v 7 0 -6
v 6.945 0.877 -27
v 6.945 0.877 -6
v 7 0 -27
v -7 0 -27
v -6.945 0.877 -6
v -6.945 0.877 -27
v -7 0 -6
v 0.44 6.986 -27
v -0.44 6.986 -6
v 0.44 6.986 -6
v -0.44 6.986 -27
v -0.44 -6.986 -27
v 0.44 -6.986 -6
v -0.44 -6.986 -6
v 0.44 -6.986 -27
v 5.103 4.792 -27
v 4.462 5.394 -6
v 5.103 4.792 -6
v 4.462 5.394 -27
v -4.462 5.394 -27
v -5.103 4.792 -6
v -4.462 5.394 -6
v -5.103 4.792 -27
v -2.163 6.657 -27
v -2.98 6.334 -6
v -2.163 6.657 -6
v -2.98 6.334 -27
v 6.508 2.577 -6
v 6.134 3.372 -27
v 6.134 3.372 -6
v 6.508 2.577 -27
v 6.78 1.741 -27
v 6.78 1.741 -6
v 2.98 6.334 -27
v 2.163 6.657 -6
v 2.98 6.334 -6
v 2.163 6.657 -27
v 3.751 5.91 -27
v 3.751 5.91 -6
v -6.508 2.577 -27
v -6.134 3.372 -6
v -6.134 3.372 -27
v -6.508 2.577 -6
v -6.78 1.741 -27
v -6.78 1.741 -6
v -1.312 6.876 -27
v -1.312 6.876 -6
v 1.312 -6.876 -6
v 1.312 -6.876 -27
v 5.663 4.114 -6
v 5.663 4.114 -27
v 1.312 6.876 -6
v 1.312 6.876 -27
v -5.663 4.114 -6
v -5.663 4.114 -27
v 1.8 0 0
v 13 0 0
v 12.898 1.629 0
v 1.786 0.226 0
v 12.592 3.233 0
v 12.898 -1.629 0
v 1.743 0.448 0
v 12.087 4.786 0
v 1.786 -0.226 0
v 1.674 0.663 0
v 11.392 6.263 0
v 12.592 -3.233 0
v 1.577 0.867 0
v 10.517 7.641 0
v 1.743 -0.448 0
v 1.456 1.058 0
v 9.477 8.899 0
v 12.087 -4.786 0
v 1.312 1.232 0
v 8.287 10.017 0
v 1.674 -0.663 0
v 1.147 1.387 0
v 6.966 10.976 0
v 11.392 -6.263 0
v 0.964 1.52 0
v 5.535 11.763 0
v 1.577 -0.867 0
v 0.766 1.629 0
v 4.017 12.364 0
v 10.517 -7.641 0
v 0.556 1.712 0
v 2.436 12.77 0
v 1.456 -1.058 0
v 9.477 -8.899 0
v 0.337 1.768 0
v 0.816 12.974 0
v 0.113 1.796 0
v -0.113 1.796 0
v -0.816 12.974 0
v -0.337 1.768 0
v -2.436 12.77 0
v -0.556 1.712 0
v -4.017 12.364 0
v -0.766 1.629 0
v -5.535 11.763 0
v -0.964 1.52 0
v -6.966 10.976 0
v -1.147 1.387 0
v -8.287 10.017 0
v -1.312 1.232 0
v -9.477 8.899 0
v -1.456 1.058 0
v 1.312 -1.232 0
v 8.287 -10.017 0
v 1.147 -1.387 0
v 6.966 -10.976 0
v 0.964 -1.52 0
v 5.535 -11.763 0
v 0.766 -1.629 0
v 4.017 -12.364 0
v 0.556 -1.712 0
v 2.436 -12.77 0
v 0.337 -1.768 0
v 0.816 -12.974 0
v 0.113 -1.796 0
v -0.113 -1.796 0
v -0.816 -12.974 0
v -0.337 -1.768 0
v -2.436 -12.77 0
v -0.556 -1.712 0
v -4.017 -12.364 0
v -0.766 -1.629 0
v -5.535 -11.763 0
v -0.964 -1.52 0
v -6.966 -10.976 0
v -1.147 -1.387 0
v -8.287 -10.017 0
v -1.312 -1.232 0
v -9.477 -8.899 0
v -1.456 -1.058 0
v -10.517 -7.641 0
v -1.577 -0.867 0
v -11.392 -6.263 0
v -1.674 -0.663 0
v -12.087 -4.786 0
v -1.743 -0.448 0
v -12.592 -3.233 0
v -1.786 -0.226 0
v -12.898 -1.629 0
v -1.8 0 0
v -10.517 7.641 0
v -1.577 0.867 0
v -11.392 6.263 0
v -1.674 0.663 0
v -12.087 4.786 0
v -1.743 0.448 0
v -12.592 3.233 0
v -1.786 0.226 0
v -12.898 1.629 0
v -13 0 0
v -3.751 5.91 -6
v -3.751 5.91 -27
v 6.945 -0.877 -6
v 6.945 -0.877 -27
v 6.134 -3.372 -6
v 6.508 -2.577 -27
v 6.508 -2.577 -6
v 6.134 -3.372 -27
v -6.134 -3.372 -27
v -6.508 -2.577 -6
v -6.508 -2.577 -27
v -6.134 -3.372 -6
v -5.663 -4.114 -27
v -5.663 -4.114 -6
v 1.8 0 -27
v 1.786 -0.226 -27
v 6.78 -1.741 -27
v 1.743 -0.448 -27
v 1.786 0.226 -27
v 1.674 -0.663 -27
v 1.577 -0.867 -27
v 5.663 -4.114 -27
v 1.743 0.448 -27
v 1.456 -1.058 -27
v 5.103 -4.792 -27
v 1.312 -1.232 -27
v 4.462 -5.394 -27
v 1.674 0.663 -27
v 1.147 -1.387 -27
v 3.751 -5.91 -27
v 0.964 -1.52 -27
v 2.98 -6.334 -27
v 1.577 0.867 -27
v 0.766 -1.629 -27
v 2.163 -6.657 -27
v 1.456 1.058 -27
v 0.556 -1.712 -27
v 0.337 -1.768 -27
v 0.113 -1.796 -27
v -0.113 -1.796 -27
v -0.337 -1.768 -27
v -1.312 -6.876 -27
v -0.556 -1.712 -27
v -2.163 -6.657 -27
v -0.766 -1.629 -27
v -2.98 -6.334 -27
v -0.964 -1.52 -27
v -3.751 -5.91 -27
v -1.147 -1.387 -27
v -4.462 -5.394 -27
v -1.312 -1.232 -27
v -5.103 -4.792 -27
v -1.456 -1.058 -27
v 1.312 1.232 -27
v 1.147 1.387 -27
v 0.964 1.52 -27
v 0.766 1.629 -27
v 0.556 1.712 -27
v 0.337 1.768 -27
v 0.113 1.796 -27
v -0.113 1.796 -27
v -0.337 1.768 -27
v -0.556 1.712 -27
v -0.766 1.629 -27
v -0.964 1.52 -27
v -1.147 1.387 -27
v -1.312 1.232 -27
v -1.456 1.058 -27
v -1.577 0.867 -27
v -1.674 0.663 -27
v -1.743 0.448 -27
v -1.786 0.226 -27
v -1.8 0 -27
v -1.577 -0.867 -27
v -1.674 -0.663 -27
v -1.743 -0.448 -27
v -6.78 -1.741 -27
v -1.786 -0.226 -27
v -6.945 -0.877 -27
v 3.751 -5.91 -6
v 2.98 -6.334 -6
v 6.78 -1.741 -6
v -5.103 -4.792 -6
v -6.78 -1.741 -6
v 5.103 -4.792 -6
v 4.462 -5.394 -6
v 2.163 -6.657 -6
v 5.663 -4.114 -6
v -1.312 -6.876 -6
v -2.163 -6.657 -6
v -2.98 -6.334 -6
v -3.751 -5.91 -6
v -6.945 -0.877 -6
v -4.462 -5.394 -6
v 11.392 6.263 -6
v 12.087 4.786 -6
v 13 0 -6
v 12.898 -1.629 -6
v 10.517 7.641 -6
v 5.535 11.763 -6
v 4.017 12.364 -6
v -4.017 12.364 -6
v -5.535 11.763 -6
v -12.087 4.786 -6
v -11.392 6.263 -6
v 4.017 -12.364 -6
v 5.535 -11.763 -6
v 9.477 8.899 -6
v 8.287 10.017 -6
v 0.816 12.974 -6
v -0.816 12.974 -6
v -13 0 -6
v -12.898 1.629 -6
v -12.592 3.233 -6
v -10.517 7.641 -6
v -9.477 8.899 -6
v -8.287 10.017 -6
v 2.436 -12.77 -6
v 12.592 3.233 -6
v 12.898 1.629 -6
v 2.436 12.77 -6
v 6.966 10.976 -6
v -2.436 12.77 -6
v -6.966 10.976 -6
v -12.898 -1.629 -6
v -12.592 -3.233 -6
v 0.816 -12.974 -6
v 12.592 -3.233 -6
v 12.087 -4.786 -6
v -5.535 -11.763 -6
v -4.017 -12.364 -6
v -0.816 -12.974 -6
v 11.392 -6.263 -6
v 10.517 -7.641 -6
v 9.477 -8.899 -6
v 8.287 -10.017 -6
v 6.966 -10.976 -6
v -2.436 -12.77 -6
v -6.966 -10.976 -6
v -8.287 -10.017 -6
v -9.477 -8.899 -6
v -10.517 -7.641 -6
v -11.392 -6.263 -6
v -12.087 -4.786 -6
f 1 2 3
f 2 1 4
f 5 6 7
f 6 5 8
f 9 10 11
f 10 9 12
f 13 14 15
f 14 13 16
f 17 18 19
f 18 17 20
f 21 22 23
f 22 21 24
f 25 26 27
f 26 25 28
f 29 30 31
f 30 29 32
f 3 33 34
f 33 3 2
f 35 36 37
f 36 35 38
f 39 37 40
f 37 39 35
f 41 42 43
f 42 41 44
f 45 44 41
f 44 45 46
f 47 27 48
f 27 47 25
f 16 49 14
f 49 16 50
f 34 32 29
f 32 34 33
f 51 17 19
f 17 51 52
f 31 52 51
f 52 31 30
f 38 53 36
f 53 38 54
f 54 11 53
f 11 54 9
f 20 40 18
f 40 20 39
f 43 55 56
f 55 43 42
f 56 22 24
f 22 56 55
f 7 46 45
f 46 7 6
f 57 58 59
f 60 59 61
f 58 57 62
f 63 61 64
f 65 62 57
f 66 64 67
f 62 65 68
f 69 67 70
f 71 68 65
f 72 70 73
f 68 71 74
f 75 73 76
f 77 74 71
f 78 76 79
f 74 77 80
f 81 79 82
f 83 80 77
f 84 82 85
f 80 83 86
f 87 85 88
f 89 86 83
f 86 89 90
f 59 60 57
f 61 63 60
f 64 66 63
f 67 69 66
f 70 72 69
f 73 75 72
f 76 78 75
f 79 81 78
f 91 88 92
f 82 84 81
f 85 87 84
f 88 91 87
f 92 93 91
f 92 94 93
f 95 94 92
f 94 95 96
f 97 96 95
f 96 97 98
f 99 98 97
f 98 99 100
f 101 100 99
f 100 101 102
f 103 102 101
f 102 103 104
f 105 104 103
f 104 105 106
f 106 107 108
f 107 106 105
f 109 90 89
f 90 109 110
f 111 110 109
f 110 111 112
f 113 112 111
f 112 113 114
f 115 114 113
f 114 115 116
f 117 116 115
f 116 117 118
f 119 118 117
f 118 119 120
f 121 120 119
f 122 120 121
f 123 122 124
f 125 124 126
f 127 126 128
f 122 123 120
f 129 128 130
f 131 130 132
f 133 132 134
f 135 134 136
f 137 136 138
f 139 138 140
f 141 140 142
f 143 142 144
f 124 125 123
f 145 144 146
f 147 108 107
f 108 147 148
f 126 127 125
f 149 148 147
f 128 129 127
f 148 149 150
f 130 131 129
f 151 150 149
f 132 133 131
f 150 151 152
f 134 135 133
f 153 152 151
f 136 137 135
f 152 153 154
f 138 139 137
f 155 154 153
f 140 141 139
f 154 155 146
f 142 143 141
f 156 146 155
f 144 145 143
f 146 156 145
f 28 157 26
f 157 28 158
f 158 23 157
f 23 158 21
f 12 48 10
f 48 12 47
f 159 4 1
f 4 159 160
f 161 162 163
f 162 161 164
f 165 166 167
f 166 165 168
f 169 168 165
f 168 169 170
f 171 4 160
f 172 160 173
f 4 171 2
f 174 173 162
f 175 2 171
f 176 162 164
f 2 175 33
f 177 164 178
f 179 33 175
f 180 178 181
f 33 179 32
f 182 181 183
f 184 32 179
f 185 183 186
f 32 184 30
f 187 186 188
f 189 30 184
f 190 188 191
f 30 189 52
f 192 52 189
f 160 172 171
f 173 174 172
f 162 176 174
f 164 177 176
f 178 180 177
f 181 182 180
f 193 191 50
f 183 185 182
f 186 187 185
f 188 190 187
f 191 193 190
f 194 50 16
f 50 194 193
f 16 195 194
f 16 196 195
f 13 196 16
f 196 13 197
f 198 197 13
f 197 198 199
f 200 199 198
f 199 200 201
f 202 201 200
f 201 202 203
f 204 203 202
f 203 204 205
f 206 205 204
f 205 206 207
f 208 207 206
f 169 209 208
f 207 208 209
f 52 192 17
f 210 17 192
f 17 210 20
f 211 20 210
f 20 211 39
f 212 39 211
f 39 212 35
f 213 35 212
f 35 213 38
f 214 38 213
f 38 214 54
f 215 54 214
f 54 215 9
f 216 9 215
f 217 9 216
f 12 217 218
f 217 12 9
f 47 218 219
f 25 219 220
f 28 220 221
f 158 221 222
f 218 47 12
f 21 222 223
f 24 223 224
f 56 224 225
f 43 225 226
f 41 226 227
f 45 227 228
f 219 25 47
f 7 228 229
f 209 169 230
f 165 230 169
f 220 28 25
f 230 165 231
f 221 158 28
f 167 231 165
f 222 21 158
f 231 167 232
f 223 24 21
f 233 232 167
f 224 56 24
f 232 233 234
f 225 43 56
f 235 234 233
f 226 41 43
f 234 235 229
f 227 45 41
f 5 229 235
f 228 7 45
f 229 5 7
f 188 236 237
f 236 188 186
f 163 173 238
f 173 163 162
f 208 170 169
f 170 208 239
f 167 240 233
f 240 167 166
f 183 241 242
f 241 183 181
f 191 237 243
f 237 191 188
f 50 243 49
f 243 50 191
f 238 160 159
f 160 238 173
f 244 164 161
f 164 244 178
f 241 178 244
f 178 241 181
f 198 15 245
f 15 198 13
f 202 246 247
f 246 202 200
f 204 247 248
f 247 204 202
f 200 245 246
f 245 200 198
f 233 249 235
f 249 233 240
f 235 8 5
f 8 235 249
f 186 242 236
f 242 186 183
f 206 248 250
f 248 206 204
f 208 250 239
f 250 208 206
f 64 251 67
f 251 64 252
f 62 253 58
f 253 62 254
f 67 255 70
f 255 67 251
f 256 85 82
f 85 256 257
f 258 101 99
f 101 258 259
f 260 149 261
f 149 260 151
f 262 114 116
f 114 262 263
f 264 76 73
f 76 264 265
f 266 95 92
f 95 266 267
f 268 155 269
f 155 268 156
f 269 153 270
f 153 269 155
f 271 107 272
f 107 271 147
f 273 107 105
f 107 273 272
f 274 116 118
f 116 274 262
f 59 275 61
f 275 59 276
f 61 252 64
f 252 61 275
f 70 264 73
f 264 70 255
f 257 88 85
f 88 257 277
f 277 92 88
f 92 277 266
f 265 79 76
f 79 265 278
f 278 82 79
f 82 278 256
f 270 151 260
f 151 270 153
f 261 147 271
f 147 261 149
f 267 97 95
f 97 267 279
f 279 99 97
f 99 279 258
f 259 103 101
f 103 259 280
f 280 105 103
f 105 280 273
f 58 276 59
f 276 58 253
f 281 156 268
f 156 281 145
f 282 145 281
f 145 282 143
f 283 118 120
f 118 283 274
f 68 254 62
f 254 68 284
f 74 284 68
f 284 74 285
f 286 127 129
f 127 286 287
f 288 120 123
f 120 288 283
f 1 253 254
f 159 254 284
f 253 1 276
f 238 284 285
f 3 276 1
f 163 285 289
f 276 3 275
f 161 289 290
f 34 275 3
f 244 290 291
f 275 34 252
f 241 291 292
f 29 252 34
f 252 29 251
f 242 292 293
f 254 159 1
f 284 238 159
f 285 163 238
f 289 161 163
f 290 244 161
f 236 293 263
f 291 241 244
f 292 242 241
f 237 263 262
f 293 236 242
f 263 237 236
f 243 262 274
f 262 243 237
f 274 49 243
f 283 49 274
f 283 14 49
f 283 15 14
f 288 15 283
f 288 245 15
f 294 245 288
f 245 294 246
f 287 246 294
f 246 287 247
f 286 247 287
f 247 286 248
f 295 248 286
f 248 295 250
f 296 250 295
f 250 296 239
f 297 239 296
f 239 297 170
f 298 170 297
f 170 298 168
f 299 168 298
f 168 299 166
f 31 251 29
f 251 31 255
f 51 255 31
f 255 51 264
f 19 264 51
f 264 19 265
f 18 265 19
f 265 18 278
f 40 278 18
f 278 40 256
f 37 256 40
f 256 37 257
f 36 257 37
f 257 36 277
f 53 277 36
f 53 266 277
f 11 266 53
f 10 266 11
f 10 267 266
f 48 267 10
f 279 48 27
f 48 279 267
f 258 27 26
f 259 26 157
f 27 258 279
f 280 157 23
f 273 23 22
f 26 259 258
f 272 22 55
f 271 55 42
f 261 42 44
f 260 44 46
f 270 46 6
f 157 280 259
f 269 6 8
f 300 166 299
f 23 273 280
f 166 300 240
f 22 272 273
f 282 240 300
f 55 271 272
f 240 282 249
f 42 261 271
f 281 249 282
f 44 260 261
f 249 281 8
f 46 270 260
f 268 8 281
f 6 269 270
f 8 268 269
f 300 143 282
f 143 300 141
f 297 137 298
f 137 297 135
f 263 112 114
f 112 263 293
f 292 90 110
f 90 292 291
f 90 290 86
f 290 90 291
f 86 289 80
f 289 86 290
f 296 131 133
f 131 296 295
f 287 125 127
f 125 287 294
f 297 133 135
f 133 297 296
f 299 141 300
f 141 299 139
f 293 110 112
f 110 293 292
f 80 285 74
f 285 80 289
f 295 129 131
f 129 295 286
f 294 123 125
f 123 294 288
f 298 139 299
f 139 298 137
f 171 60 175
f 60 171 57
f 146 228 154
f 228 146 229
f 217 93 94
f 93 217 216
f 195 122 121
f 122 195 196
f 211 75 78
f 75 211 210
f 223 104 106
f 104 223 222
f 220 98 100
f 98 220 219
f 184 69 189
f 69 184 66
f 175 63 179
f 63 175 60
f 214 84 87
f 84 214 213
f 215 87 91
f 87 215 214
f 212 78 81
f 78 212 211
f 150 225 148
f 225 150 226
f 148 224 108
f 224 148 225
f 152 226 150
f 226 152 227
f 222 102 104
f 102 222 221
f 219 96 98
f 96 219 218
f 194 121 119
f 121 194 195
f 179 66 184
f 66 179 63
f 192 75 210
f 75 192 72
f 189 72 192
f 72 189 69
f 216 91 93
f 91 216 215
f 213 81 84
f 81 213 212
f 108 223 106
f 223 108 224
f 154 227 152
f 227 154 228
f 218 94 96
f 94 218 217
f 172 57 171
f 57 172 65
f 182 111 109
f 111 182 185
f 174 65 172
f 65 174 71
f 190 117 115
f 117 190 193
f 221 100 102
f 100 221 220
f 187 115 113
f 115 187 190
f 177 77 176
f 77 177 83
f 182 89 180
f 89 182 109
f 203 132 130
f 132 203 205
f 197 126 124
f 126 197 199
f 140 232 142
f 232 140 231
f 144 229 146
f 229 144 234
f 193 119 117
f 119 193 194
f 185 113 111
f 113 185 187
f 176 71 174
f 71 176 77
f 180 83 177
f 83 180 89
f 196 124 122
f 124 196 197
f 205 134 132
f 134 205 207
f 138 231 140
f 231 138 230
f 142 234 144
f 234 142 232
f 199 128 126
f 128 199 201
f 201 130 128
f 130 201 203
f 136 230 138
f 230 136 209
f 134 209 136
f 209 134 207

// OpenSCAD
$fn = 50;


difference() {
	union() {
		translate(v = [0, 0, -27.0000000000]) {
			cylinder(h = 27, r = 7.0000000000);
		}
		translate(v = [0, 0, -6.0000000000]) {
			cylinder(h = 6, r = 13.0000000000);
		}
	}
	union() {
		#translate(v = [0, 0, -27]) {
			cylinder(h = 27, r = 1.8000000000);
		}
	}
}
